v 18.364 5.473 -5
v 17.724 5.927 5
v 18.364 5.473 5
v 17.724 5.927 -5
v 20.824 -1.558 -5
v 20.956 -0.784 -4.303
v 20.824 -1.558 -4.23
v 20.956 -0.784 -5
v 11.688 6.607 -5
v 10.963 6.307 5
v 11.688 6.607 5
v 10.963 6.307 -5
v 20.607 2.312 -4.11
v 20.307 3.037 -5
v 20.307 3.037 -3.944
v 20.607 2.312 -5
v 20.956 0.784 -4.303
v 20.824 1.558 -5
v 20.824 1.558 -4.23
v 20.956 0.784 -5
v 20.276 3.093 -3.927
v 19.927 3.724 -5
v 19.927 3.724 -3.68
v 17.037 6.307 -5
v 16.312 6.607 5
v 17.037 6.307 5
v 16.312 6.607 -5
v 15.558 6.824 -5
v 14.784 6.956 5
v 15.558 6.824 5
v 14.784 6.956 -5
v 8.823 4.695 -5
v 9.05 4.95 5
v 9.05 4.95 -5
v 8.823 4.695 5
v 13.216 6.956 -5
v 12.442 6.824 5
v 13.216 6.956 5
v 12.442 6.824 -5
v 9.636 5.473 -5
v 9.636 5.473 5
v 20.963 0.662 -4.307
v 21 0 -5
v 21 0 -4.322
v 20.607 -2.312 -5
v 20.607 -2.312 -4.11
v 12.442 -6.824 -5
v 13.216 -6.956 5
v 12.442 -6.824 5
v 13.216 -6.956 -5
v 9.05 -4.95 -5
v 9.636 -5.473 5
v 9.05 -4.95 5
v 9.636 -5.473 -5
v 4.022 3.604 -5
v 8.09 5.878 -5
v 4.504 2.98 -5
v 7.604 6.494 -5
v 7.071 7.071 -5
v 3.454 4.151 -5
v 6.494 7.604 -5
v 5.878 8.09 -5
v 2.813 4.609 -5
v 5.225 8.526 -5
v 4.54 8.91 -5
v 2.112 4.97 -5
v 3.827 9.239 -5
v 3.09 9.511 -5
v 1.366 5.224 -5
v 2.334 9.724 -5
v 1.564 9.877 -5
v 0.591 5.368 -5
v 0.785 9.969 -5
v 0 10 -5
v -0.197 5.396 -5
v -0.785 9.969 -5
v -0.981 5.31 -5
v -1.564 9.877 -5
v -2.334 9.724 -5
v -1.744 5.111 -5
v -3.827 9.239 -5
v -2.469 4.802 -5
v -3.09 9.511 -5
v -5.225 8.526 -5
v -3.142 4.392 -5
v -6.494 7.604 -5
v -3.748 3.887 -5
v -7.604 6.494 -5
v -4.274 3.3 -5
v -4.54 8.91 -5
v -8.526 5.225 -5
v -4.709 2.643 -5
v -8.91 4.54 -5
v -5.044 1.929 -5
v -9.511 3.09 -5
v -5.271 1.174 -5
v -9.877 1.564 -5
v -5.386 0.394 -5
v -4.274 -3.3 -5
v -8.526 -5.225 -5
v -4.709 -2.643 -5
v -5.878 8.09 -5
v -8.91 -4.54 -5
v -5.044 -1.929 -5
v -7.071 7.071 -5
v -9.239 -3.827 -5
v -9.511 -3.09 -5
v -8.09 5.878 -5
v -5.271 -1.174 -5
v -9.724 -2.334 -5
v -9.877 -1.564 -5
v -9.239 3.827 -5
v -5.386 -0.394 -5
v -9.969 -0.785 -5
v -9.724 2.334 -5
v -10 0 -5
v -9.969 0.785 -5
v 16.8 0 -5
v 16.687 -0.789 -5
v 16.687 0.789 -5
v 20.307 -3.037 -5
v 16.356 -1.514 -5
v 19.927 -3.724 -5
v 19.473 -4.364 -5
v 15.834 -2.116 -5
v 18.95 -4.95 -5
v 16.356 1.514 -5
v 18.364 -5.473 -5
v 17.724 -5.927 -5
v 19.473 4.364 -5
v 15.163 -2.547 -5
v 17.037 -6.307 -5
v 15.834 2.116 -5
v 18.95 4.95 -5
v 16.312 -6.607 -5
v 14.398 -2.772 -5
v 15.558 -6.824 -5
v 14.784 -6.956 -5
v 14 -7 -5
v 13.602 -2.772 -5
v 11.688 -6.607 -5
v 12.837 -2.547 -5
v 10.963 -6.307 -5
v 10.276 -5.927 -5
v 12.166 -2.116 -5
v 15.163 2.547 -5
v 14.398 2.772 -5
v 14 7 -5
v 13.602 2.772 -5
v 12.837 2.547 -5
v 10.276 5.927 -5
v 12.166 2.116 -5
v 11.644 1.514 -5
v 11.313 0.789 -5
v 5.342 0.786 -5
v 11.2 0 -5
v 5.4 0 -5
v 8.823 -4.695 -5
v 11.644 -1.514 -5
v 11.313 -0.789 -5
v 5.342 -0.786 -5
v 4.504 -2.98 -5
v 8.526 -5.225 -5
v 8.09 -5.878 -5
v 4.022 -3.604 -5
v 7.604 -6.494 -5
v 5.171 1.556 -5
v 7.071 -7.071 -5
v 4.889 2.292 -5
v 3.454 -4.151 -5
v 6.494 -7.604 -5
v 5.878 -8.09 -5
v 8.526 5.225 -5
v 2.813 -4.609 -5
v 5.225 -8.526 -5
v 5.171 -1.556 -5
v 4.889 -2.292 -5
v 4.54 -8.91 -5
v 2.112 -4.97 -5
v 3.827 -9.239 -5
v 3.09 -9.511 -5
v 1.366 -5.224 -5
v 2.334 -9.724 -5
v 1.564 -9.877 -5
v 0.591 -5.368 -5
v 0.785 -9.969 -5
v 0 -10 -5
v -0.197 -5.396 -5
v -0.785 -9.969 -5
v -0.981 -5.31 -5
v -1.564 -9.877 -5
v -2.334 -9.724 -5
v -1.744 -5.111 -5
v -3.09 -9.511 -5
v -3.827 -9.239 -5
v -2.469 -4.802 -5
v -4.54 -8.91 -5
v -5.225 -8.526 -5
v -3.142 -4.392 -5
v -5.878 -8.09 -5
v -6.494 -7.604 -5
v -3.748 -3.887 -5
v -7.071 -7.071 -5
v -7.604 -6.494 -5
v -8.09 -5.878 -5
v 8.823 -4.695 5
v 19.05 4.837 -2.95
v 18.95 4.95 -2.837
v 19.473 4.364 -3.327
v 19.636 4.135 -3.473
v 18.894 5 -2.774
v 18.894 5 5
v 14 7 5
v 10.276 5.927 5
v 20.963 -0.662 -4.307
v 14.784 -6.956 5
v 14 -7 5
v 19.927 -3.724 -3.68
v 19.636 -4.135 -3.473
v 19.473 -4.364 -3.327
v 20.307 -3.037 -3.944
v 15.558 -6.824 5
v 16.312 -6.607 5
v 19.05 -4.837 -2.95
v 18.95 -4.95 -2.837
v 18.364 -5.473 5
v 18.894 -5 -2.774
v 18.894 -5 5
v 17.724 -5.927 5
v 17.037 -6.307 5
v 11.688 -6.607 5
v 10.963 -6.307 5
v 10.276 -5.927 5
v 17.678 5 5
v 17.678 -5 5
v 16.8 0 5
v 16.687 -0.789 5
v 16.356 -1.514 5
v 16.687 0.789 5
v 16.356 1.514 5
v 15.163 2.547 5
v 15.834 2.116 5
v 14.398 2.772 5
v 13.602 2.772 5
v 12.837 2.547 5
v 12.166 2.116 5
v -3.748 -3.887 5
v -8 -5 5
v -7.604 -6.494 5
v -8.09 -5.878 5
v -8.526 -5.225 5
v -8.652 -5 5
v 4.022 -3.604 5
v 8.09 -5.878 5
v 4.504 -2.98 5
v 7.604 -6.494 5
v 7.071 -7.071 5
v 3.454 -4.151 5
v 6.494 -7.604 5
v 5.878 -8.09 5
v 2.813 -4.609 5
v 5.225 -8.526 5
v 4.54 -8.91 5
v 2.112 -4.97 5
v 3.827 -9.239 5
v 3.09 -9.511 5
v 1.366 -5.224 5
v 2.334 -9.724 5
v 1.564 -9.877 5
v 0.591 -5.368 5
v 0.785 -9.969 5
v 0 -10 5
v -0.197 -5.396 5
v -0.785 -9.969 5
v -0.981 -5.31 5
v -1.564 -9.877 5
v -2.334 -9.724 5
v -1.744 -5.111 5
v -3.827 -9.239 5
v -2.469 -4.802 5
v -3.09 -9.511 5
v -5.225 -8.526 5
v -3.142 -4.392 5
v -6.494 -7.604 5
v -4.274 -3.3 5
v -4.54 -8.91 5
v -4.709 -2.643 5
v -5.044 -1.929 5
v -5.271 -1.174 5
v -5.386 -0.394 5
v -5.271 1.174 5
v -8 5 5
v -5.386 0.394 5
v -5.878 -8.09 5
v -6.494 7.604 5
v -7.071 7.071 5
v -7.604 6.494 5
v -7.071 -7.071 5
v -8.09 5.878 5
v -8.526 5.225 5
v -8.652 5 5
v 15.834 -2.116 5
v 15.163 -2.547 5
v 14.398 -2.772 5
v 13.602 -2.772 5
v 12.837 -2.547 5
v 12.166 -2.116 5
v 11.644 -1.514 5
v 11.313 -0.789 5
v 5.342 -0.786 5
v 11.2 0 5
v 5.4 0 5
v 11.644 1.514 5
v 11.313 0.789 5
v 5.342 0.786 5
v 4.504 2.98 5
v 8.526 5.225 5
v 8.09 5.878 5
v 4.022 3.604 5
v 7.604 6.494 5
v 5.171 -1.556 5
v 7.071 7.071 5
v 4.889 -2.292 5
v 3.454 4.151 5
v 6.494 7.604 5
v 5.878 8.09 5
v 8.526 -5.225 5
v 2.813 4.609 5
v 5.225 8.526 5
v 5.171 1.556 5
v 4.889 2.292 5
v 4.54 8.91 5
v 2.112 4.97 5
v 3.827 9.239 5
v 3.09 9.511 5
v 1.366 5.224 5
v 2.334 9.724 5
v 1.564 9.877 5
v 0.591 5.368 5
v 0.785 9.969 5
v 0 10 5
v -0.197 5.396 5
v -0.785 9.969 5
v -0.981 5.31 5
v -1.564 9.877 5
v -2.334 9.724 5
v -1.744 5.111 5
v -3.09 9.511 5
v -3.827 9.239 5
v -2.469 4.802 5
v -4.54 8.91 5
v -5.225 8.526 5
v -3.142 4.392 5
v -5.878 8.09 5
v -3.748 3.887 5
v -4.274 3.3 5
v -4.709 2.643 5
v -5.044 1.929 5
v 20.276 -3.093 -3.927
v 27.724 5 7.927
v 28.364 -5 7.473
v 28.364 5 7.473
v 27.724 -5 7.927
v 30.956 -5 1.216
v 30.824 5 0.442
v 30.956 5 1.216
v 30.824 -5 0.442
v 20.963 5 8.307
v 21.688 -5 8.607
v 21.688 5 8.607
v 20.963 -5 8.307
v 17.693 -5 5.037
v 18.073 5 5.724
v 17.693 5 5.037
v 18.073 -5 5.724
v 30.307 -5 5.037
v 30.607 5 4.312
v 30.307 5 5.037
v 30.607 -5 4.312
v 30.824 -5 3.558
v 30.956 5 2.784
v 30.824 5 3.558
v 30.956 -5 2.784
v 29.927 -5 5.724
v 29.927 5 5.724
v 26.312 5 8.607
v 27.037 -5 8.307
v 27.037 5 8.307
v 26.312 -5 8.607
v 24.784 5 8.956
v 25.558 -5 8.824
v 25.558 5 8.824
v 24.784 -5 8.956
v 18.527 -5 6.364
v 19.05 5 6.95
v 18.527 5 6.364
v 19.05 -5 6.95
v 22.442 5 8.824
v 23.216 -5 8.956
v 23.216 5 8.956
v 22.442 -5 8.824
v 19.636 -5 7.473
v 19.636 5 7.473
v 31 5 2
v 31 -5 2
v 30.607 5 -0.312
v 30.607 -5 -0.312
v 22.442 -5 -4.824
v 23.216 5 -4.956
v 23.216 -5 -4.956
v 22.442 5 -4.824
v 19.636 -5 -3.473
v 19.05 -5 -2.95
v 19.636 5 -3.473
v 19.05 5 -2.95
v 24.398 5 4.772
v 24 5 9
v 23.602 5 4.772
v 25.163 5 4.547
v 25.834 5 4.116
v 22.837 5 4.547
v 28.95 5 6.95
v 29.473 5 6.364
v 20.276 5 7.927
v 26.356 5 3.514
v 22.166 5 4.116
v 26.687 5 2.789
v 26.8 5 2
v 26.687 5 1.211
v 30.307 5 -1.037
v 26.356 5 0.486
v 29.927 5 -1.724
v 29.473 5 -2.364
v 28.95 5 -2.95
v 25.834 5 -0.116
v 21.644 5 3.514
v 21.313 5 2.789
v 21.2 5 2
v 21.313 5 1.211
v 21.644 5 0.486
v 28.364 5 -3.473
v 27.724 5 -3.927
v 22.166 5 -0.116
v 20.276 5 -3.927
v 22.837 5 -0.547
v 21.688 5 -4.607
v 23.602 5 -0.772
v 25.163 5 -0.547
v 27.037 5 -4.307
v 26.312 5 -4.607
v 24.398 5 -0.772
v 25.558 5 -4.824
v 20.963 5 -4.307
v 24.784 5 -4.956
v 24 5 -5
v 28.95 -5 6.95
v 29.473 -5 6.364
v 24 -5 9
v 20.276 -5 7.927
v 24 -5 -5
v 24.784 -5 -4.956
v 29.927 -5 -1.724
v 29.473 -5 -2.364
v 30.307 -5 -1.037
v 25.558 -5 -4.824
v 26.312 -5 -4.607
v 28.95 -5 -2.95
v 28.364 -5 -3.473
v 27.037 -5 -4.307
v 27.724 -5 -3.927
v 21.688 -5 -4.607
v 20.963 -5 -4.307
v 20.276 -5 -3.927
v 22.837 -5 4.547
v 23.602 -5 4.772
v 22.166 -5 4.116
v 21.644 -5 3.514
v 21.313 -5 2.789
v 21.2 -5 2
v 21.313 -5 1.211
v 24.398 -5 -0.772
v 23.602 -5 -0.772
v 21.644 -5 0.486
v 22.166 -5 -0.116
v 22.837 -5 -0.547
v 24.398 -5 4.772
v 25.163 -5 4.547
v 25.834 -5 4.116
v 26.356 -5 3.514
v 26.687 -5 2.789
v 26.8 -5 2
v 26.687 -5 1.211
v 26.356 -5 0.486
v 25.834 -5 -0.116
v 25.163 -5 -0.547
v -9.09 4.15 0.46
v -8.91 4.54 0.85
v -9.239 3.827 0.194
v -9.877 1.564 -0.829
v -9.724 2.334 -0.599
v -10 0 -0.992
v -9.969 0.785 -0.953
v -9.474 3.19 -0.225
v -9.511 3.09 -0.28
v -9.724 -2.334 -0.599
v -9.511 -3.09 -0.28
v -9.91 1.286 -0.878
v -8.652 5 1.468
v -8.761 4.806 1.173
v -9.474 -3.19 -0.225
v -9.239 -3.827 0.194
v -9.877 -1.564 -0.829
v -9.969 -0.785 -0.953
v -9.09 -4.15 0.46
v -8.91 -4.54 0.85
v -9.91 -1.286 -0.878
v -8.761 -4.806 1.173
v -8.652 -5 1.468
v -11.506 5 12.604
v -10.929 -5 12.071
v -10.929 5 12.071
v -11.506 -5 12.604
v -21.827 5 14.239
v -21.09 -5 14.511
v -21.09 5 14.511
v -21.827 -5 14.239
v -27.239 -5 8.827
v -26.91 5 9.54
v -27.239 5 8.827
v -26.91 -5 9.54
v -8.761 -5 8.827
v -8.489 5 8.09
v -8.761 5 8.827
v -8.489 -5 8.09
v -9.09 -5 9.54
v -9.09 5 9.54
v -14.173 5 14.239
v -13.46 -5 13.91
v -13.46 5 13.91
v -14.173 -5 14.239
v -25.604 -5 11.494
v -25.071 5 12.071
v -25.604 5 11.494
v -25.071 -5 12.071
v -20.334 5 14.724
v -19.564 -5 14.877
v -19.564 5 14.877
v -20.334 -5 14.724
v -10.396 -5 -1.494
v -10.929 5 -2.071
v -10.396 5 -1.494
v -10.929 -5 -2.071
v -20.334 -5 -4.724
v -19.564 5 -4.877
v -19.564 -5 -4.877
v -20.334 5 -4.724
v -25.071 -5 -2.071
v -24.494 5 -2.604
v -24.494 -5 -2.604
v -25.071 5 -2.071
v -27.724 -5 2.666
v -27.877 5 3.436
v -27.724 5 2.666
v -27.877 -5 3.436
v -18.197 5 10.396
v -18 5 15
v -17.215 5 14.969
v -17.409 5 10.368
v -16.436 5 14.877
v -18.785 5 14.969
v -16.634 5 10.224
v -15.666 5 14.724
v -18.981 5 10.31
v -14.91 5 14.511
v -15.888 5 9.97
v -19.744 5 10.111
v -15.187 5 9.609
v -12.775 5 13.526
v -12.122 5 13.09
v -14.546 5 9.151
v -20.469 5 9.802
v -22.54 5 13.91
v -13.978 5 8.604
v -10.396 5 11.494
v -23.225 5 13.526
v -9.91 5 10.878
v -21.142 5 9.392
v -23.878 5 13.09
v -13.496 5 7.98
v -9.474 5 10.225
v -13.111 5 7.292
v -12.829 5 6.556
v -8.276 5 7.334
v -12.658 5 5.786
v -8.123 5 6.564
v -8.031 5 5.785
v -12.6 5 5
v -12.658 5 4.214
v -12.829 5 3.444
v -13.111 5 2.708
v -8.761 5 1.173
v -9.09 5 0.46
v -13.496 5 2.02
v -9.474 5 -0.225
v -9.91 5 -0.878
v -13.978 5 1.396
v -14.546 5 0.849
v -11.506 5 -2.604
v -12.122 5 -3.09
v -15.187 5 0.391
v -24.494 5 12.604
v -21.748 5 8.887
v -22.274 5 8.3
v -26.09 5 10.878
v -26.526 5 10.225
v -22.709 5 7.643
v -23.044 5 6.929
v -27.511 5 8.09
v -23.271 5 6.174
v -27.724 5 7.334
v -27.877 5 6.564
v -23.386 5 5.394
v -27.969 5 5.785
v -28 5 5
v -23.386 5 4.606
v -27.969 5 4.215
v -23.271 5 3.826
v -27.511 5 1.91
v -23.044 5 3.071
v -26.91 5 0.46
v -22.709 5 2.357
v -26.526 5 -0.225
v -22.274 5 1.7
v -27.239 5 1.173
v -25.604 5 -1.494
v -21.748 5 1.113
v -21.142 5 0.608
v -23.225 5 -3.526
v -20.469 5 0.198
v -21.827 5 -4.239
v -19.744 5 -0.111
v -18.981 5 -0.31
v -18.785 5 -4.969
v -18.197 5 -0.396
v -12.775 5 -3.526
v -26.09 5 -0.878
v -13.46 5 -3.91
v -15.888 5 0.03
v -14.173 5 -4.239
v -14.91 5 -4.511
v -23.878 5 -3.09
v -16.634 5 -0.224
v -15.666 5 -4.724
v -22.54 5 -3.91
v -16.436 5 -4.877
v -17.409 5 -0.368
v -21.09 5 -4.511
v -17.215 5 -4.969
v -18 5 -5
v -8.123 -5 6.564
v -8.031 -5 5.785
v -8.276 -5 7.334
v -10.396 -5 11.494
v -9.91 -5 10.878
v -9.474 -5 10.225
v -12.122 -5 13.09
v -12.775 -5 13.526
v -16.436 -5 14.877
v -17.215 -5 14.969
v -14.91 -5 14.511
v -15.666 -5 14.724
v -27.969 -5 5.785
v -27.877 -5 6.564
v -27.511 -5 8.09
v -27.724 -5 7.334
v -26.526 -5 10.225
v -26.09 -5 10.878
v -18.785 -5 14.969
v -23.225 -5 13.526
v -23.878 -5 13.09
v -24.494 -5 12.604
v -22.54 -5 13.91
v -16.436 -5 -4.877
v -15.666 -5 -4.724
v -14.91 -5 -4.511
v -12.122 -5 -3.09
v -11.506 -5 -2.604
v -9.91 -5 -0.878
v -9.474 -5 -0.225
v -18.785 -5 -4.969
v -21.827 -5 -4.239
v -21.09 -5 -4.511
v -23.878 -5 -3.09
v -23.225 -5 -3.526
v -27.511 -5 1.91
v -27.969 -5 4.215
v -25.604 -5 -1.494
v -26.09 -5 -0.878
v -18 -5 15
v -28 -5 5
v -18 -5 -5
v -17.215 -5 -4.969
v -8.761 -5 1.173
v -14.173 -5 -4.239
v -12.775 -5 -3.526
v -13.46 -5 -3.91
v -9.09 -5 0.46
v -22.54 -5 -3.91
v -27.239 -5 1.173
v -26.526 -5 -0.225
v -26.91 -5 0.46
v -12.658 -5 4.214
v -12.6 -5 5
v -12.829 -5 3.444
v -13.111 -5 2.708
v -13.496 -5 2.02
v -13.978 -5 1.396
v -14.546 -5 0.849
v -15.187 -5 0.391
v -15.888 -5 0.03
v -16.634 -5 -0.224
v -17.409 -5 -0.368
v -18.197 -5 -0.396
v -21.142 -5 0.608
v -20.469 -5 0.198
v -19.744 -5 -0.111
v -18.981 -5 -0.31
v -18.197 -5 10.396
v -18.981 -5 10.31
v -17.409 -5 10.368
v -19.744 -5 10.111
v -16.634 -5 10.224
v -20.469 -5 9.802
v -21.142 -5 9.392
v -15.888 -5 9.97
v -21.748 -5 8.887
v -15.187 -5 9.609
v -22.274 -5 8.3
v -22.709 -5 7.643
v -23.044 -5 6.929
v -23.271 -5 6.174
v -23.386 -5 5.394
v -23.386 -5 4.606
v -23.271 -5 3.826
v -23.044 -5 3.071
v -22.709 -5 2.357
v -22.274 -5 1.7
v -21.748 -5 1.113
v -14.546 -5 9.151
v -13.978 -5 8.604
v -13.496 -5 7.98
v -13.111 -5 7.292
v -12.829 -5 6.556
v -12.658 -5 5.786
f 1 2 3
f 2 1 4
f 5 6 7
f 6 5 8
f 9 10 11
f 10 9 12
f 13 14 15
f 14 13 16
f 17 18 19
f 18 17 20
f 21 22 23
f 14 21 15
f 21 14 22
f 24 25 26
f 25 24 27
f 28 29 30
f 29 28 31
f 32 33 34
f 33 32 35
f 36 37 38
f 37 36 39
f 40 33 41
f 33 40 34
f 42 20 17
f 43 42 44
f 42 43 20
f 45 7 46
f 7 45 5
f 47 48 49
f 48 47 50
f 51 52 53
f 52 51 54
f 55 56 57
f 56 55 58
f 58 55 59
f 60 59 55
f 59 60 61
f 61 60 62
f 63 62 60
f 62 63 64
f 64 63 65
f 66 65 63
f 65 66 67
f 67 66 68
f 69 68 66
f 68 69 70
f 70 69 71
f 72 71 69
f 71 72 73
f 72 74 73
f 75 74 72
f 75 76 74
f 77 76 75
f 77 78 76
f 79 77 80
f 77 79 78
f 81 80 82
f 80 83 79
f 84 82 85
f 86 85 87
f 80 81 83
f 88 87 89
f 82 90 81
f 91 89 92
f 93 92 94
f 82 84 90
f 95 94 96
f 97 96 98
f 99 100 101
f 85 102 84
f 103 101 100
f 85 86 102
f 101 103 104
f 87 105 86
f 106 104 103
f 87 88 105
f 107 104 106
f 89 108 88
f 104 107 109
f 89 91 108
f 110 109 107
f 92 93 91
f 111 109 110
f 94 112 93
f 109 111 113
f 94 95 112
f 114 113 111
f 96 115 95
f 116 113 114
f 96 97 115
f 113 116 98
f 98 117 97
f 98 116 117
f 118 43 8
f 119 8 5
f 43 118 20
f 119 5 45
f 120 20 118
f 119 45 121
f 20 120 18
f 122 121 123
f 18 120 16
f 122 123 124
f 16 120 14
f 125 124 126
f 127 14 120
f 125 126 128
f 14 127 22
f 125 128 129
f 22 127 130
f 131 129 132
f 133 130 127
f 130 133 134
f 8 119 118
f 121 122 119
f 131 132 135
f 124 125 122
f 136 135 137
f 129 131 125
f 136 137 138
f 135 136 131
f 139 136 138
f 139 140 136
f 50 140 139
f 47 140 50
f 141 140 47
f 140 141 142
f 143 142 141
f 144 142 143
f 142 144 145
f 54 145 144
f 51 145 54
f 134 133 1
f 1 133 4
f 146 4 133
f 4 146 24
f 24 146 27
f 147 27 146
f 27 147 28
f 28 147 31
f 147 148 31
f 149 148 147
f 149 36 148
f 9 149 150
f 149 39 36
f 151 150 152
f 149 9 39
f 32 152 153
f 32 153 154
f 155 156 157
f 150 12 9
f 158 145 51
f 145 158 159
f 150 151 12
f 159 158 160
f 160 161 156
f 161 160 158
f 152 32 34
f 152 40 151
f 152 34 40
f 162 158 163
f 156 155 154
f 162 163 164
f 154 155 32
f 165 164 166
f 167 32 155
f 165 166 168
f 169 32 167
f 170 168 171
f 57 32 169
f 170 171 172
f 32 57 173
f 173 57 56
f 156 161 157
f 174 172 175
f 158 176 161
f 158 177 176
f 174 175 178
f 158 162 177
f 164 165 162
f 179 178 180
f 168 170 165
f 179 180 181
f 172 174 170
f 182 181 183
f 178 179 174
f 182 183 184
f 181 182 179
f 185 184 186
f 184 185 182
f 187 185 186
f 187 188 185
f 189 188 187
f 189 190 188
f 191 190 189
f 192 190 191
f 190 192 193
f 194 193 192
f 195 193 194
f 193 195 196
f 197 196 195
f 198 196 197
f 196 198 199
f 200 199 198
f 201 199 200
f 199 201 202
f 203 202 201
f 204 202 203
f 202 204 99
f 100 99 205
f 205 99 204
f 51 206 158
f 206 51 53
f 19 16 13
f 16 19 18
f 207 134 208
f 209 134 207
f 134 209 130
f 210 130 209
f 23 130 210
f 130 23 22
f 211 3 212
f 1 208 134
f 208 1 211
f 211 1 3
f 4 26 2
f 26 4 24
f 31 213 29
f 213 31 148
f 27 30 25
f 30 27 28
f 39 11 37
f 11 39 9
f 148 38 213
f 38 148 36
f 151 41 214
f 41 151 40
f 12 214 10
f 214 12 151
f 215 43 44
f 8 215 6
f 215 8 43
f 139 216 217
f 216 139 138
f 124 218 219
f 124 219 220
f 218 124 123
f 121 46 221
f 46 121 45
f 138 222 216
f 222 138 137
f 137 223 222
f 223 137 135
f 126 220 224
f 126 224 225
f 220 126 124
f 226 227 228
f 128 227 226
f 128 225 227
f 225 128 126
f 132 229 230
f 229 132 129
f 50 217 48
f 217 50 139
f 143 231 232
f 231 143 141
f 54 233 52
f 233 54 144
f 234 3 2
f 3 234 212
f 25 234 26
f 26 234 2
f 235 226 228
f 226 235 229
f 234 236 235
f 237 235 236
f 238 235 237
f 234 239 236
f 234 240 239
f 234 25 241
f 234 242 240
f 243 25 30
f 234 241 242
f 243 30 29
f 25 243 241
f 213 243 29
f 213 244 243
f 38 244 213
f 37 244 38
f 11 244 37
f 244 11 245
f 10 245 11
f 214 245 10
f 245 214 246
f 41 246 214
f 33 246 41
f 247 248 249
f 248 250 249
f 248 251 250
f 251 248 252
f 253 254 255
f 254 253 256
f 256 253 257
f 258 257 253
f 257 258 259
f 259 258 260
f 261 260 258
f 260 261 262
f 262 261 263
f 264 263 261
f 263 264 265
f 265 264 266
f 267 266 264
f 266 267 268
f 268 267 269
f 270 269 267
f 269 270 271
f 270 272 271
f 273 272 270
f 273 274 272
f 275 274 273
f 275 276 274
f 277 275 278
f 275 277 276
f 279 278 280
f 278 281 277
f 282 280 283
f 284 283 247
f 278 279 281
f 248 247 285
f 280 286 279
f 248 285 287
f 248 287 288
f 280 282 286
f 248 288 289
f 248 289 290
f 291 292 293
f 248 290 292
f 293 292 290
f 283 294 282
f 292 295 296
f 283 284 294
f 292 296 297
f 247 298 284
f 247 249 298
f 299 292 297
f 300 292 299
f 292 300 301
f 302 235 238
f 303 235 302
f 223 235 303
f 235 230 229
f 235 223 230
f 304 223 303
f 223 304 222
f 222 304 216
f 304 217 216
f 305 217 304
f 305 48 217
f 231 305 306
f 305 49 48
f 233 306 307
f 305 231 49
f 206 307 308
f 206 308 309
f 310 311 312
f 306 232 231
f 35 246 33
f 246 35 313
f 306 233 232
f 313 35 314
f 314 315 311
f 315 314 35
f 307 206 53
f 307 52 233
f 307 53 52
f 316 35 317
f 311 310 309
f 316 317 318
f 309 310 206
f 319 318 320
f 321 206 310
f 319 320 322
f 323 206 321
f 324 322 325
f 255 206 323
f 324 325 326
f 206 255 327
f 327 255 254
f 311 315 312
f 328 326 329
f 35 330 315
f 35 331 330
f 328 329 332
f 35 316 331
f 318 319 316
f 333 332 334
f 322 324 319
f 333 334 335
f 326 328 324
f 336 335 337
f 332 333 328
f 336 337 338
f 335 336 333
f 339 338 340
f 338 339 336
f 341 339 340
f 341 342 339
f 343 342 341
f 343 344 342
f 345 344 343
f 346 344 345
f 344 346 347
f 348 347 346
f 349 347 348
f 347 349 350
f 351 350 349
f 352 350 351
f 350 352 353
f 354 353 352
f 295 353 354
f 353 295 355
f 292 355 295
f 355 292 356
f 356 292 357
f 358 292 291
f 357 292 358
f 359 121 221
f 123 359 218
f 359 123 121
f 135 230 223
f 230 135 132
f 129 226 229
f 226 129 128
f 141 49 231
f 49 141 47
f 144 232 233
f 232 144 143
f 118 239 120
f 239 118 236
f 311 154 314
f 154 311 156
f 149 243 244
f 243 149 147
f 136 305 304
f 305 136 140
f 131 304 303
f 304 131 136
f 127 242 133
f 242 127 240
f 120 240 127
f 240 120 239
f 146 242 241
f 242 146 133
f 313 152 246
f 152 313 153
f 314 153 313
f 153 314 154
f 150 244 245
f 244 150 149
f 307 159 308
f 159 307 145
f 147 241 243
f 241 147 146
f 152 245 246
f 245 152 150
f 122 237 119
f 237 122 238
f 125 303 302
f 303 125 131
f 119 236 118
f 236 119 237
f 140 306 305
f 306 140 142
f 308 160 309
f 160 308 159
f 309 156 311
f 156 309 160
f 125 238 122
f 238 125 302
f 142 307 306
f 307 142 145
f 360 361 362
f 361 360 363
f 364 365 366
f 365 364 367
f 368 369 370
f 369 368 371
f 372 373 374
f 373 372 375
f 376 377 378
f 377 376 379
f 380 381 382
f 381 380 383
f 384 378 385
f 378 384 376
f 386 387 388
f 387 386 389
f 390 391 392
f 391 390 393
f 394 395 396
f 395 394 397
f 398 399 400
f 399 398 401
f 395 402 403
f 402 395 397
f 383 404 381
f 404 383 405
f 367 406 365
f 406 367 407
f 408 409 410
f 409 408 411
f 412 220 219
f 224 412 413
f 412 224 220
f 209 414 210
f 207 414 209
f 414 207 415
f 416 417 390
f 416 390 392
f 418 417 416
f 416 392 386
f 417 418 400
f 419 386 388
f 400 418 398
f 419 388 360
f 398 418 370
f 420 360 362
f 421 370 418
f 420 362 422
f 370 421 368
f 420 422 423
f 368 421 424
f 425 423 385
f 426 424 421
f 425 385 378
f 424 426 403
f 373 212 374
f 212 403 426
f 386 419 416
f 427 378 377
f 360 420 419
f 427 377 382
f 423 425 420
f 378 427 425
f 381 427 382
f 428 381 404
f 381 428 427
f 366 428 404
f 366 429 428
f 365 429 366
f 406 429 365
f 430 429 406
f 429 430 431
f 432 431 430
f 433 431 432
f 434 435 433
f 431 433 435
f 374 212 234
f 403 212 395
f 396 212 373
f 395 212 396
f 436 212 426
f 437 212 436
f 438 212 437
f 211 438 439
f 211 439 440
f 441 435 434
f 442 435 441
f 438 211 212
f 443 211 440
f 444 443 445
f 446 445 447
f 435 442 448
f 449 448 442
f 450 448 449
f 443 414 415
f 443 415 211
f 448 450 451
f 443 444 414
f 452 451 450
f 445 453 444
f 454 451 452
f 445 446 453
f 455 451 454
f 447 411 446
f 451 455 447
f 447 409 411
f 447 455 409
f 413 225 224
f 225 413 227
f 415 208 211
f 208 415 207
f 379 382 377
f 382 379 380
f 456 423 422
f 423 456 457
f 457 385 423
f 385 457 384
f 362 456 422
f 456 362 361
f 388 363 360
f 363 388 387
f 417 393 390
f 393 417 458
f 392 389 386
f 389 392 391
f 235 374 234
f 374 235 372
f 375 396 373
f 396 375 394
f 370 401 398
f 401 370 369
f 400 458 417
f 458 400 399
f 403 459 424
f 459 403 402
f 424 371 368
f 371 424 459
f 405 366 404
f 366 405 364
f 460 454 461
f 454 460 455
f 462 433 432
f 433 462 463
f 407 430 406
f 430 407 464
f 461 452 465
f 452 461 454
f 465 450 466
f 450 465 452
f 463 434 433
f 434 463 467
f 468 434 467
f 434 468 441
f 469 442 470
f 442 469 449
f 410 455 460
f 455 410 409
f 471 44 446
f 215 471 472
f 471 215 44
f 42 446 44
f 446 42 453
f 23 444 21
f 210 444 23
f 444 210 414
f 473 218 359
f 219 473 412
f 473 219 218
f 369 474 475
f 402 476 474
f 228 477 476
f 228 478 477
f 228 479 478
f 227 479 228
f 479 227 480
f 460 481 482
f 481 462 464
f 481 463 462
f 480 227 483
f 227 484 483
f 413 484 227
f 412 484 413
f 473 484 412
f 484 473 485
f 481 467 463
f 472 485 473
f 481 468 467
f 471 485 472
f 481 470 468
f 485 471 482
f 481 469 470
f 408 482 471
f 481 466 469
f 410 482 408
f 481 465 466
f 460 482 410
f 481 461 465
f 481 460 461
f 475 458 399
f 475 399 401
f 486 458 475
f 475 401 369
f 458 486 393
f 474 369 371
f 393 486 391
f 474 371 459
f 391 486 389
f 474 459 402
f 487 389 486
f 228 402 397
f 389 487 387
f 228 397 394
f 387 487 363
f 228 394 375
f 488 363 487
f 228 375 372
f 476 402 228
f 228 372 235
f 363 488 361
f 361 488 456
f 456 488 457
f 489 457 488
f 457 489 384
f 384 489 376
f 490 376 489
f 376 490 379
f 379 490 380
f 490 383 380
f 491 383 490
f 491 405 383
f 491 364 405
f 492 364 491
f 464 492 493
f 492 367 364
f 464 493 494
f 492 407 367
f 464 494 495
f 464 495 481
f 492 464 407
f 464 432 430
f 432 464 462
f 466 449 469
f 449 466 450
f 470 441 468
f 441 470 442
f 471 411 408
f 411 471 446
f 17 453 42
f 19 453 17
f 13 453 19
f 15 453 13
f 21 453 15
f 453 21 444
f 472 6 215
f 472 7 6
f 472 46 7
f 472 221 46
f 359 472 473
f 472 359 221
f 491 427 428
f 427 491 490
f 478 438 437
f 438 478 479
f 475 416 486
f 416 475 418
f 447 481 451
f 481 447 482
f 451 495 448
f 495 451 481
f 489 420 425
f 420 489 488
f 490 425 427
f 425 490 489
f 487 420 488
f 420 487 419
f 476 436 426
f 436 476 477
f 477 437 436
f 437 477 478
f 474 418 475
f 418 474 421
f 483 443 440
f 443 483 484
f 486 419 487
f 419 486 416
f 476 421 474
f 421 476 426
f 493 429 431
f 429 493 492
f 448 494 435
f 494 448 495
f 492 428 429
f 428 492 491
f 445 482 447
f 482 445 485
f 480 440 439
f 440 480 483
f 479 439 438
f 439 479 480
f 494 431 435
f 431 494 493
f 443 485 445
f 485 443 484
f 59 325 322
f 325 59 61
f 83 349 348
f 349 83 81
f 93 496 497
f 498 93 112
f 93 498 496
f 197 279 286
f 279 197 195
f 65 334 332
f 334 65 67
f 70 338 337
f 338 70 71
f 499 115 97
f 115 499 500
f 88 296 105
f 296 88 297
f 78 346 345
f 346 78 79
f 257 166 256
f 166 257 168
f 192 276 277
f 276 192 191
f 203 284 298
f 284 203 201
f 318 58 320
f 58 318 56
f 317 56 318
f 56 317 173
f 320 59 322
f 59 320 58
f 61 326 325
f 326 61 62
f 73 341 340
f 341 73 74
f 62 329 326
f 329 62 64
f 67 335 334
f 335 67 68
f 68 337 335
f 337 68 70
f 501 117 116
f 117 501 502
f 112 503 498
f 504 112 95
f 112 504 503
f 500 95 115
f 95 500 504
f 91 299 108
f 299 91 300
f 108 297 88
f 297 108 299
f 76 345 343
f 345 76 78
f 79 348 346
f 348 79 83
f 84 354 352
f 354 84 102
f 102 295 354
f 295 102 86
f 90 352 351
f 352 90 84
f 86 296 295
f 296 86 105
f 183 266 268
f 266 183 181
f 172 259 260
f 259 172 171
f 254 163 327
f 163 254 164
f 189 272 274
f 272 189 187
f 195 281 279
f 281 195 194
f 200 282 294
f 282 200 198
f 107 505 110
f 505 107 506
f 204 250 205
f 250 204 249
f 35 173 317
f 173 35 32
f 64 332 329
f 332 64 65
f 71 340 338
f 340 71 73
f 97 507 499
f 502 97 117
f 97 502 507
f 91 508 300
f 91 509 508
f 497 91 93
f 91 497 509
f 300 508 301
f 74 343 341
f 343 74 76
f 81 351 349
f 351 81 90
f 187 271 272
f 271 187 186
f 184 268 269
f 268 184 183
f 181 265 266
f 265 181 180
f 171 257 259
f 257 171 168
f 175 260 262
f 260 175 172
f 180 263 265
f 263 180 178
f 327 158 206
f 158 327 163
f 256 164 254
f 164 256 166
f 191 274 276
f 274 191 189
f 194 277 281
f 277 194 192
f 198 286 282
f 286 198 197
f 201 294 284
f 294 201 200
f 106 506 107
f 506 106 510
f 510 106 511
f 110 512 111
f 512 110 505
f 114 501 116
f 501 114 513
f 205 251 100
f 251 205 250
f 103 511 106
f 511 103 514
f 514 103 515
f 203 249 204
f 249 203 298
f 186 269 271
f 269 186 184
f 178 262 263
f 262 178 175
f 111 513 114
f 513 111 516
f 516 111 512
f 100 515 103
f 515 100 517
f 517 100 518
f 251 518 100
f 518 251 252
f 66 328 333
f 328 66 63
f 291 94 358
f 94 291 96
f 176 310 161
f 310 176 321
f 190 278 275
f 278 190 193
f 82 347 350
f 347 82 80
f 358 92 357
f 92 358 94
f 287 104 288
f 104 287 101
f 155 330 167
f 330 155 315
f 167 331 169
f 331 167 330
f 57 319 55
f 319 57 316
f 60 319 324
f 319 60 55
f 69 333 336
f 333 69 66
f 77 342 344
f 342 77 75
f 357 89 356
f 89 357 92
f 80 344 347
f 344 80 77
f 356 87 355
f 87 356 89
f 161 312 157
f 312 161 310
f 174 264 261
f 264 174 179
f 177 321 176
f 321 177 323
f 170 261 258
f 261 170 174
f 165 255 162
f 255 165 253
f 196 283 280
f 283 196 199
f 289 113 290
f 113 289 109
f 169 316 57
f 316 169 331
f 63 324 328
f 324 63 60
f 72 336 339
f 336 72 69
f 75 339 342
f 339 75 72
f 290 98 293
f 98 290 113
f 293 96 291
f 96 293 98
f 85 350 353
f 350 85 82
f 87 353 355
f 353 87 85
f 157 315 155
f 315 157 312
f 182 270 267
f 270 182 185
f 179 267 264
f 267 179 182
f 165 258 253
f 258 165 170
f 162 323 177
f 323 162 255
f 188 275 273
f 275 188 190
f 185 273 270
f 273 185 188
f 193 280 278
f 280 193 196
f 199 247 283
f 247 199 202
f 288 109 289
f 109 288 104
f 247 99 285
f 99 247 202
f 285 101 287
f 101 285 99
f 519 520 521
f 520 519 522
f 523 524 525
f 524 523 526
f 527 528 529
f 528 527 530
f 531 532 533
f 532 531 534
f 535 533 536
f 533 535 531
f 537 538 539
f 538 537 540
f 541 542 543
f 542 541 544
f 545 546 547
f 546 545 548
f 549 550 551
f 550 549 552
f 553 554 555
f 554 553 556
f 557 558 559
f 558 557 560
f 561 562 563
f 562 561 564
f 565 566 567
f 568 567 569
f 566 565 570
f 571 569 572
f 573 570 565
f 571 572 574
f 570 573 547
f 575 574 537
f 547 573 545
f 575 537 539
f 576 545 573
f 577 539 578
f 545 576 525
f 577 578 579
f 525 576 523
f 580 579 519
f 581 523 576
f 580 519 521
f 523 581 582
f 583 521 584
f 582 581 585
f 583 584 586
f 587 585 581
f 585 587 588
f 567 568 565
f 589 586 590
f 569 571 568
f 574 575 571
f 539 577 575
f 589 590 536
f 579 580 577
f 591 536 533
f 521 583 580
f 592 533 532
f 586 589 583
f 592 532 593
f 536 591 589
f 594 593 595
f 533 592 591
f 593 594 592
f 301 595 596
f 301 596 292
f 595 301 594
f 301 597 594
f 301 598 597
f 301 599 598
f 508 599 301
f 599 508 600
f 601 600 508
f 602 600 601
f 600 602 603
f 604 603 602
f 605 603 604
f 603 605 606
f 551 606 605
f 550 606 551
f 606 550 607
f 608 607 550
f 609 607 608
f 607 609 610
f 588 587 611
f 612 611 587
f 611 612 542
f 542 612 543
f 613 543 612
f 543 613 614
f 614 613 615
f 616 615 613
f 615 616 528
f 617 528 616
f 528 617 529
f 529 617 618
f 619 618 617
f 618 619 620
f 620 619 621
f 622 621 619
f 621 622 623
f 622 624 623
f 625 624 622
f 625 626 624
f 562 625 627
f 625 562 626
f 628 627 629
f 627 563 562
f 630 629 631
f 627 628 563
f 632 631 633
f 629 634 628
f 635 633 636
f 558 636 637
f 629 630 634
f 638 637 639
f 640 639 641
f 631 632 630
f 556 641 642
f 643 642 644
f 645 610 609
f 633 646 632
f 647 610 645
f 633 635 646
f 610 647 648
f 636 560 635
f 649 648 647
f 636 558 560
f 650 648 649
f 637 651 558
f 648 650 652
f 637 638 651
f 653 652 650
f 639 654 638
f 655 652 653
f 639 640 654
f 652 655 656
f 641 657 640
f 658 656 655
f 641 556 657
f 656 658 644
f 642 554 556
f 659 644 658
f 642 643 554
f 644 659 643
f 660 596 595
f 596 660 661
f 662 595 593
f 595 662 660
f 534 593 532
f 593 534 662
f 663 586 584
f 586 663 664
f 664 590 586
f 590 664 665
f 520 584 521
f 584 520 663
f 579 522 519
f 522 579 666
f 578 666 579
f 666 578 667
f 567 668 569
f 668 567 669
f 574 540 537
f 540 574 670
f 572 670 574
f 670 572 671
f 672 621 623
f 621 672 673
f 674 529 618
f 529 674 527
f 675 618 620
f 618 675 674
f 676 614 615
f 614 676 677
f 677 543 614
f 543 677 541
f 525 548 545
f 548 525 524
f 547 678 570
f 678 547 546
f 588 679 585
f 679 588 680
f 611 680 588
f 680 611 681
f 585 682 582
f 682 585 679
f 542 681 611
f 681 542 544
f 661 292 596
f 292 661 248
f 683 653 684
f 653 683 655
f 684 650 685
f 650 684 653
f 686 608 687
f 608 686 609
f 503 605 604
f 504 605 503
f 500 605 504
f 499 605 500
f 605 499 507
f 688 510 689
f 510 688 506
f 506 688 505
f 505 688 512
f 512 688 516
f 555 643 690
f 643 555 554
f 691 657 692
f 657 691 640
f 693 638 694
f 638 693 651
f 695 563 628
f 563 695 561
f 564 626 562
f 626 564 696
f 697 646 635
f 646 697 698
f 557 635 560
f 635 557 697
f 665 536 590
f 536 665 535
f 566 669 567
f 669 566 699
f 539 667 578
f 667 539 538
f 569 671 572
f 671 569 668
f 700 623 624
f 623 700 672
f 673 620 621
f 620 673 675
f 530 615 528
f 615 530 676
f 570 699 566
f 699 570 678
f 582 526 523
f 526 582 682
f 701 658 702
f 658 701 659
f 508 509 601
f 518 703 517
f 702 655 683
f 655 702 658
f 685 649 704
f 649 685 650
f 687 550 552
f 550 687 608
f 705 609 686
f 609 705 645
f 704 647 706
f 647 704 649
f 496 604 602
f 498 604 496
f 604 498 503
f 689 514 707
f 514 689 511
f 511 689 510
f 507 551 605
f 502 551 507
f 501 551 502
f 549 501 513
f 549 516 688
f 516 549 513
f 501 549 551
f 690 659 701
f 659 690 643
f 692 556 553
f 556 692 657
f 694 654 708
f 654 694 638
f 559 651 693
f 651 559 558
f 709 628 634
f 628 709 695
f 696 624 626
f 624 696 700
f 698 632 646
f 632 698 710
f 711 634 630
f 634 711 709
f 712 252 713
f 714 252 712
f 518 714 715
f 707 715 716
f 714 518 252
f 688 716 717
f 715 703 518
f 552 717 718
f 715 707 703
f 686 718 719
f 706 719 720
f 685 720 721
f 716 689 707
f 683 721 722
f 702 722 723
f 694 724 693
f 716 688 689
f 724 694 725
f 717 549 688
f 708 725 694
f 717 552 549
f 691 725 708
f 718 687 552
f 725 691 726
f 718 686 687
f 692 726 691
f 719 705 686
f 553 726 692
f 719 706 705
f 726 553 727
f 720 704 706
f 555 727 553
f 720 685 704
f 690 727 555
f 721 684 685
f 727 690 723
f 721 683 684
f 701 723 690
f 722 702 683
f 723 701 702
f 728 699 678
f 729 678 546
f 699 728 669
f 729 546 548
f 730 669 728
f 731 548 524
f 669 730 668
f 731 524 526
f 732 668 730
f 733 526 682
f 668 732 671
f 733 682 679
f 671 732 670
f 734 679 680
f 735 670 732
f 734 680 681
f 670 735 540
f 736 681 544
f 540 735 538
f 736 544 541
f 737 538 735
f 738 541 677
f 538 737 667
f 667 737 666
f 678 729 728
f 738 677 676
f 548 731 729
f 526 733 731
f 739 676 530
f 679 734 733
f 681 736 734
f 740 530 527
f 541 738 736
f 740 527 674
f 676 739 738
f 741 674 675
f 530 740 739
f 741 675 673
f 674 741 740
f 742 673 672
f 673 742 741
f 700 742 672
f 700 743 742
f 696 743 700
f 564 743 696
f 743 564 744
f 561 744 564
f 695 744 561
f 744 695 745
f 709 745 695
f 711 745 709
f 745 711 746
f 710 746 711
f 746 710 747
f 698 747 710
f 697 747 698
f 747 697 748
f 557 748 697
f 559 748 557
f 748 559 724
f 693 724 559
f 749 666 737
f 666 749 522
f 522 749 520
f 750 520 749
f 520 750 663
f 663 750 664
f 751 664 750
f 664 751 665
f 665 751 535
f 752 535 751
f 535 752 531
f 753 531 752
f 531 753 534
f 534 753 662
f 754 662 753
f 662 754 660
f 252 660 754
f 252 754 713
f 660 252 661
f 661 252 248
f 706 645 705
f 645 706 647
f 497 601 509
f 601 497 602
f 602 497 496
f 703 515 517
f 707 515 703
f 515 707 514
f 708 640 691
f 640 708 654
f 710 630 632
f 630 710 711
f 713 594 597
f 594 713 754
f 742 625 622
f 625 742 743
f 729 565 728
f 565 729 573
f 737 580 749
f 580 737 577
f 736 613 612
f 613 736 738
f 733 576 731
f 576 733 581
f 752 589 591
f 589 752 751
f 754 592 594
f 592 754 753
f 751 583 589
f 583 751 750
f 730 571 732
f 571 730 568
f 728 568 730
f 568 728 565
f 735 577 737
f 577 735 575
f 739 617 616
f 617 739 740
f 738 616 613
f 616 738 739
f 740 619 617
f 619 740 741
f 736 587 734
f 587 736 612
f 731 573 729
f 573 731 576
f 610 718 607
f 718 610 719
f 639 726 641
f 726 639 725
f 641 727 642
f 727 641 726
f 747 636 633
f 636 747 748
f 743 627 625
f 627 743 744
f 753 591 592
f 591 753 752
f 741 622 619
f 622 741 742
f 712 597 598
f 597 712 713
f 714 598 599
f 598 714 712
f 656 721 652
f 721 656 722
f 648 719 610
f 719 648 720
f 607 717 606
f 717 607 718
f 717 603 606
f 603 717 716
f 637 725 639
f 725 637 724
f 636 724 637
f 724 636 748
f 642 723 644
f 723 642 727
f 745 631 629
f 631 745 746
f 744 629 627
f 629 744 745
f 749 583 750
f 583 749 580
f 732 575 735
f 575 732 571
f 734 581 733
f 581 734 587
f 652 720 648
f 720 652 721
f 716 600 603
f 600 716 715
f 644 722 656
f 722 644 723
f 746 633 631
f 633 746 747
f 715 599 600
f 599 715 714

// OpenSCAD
// file: ../../08_scadSimplifyLib/scad/primitives.scad
//px - Position X
//rx - Rotation X
//sx - Scale X
//mx - Mirror X


//yCube(szx=5, py=3, rz=30, mx=1, clr="red");
//yCyl(px=7, py=5, rb=3, clr="green");
//yPoly(p=[[-5,0],[5,0],[0,5]],szz=3);

//szx - SiZe X
module yCube(px=0, py=0, pz=0, rx=0, ry=0, rz=0, sx=1, sy=1, sz=1, mx=0, my=0, mz=0, szx=1, szy=1, szz=1, clr = "grey") {
    mirror([mx,my,mz])
    translate([px, py, pz])
    rotate([rx,ry,rz])
    scale([sx,sy,sz])
    color(clr)
        cube([szx, szy, szz], center=true);    
}//yCube

//rb - Radius Bottom, rt - Radius Top
module yCyl(px=0, py=0, pz=0, rx=0, ry=0, rz=0, sx=1, sy=1, sz=1, mx=0, my=0, mz=0, rb=1, rt=1, szz=1, clr = "grey", fn = ($preview ? 2:8) ) {
    mirror([mx,my,mz])
    translate([px, py, (pz-szz/2)])
    rotate([rx,ry,rz])
    scale([sx,sy,sz])
    color(clr)
        cylinder(szz, rb, rt, $fn=fn*((rb>rt)?rb:rt));    
}//yCyl


module yPoly(px=0, py=0, pz=0, rx=0, ry=0, rz=0, sx=1, sy=1, sz=1, mx=0, my=0, mz=0, p=[[0,0],[10,0],[0,10]], szz=1, clr = "grey") {
    mirror([mx,my,mz])
    translate([px, py, pz])
    rotate([rx,ry,rz])
    scale([sx,sy,sz])
    color(clr)
        linear_extrude(szz)
            polygon(p);
}//yCube
// main file
include <../../08_scadSimplifyLib/scad/primitives.scad>

hCyl = 10;

holder10mm();
holder5mm(px=14);
holder10mm(px=-18, pz=5, rx=90);
holder5mm(px=24, pz=2, rx=90);

module holder10mm(px=0, py=0, pz=0, rx=0, ry=0, rz=0) {
    translate([px, py, pz])
    rotate([rx,ry,rz]){
        difference(){
            yCyl(rb=10, rt=10, szz=hCyl);
            yCyl(rb=5.4, rt=5.4, szz=hCyl+2);
        }//diff
    }//transform
}//module 10mm

module holder5mm(px=0, py=0, pz=0, rx=0, ry=0, rz=0) {
    translate([px, py, pz])
    rotate([rx,ry,rz]){
        difference(){
            yCyl(rb=7, rt=7, szz=hCyl);
            yCyl(rb=2.8, rt=2.8, szz=hCyl+2);
        }//diff
    }//transform
}//module 5mm
